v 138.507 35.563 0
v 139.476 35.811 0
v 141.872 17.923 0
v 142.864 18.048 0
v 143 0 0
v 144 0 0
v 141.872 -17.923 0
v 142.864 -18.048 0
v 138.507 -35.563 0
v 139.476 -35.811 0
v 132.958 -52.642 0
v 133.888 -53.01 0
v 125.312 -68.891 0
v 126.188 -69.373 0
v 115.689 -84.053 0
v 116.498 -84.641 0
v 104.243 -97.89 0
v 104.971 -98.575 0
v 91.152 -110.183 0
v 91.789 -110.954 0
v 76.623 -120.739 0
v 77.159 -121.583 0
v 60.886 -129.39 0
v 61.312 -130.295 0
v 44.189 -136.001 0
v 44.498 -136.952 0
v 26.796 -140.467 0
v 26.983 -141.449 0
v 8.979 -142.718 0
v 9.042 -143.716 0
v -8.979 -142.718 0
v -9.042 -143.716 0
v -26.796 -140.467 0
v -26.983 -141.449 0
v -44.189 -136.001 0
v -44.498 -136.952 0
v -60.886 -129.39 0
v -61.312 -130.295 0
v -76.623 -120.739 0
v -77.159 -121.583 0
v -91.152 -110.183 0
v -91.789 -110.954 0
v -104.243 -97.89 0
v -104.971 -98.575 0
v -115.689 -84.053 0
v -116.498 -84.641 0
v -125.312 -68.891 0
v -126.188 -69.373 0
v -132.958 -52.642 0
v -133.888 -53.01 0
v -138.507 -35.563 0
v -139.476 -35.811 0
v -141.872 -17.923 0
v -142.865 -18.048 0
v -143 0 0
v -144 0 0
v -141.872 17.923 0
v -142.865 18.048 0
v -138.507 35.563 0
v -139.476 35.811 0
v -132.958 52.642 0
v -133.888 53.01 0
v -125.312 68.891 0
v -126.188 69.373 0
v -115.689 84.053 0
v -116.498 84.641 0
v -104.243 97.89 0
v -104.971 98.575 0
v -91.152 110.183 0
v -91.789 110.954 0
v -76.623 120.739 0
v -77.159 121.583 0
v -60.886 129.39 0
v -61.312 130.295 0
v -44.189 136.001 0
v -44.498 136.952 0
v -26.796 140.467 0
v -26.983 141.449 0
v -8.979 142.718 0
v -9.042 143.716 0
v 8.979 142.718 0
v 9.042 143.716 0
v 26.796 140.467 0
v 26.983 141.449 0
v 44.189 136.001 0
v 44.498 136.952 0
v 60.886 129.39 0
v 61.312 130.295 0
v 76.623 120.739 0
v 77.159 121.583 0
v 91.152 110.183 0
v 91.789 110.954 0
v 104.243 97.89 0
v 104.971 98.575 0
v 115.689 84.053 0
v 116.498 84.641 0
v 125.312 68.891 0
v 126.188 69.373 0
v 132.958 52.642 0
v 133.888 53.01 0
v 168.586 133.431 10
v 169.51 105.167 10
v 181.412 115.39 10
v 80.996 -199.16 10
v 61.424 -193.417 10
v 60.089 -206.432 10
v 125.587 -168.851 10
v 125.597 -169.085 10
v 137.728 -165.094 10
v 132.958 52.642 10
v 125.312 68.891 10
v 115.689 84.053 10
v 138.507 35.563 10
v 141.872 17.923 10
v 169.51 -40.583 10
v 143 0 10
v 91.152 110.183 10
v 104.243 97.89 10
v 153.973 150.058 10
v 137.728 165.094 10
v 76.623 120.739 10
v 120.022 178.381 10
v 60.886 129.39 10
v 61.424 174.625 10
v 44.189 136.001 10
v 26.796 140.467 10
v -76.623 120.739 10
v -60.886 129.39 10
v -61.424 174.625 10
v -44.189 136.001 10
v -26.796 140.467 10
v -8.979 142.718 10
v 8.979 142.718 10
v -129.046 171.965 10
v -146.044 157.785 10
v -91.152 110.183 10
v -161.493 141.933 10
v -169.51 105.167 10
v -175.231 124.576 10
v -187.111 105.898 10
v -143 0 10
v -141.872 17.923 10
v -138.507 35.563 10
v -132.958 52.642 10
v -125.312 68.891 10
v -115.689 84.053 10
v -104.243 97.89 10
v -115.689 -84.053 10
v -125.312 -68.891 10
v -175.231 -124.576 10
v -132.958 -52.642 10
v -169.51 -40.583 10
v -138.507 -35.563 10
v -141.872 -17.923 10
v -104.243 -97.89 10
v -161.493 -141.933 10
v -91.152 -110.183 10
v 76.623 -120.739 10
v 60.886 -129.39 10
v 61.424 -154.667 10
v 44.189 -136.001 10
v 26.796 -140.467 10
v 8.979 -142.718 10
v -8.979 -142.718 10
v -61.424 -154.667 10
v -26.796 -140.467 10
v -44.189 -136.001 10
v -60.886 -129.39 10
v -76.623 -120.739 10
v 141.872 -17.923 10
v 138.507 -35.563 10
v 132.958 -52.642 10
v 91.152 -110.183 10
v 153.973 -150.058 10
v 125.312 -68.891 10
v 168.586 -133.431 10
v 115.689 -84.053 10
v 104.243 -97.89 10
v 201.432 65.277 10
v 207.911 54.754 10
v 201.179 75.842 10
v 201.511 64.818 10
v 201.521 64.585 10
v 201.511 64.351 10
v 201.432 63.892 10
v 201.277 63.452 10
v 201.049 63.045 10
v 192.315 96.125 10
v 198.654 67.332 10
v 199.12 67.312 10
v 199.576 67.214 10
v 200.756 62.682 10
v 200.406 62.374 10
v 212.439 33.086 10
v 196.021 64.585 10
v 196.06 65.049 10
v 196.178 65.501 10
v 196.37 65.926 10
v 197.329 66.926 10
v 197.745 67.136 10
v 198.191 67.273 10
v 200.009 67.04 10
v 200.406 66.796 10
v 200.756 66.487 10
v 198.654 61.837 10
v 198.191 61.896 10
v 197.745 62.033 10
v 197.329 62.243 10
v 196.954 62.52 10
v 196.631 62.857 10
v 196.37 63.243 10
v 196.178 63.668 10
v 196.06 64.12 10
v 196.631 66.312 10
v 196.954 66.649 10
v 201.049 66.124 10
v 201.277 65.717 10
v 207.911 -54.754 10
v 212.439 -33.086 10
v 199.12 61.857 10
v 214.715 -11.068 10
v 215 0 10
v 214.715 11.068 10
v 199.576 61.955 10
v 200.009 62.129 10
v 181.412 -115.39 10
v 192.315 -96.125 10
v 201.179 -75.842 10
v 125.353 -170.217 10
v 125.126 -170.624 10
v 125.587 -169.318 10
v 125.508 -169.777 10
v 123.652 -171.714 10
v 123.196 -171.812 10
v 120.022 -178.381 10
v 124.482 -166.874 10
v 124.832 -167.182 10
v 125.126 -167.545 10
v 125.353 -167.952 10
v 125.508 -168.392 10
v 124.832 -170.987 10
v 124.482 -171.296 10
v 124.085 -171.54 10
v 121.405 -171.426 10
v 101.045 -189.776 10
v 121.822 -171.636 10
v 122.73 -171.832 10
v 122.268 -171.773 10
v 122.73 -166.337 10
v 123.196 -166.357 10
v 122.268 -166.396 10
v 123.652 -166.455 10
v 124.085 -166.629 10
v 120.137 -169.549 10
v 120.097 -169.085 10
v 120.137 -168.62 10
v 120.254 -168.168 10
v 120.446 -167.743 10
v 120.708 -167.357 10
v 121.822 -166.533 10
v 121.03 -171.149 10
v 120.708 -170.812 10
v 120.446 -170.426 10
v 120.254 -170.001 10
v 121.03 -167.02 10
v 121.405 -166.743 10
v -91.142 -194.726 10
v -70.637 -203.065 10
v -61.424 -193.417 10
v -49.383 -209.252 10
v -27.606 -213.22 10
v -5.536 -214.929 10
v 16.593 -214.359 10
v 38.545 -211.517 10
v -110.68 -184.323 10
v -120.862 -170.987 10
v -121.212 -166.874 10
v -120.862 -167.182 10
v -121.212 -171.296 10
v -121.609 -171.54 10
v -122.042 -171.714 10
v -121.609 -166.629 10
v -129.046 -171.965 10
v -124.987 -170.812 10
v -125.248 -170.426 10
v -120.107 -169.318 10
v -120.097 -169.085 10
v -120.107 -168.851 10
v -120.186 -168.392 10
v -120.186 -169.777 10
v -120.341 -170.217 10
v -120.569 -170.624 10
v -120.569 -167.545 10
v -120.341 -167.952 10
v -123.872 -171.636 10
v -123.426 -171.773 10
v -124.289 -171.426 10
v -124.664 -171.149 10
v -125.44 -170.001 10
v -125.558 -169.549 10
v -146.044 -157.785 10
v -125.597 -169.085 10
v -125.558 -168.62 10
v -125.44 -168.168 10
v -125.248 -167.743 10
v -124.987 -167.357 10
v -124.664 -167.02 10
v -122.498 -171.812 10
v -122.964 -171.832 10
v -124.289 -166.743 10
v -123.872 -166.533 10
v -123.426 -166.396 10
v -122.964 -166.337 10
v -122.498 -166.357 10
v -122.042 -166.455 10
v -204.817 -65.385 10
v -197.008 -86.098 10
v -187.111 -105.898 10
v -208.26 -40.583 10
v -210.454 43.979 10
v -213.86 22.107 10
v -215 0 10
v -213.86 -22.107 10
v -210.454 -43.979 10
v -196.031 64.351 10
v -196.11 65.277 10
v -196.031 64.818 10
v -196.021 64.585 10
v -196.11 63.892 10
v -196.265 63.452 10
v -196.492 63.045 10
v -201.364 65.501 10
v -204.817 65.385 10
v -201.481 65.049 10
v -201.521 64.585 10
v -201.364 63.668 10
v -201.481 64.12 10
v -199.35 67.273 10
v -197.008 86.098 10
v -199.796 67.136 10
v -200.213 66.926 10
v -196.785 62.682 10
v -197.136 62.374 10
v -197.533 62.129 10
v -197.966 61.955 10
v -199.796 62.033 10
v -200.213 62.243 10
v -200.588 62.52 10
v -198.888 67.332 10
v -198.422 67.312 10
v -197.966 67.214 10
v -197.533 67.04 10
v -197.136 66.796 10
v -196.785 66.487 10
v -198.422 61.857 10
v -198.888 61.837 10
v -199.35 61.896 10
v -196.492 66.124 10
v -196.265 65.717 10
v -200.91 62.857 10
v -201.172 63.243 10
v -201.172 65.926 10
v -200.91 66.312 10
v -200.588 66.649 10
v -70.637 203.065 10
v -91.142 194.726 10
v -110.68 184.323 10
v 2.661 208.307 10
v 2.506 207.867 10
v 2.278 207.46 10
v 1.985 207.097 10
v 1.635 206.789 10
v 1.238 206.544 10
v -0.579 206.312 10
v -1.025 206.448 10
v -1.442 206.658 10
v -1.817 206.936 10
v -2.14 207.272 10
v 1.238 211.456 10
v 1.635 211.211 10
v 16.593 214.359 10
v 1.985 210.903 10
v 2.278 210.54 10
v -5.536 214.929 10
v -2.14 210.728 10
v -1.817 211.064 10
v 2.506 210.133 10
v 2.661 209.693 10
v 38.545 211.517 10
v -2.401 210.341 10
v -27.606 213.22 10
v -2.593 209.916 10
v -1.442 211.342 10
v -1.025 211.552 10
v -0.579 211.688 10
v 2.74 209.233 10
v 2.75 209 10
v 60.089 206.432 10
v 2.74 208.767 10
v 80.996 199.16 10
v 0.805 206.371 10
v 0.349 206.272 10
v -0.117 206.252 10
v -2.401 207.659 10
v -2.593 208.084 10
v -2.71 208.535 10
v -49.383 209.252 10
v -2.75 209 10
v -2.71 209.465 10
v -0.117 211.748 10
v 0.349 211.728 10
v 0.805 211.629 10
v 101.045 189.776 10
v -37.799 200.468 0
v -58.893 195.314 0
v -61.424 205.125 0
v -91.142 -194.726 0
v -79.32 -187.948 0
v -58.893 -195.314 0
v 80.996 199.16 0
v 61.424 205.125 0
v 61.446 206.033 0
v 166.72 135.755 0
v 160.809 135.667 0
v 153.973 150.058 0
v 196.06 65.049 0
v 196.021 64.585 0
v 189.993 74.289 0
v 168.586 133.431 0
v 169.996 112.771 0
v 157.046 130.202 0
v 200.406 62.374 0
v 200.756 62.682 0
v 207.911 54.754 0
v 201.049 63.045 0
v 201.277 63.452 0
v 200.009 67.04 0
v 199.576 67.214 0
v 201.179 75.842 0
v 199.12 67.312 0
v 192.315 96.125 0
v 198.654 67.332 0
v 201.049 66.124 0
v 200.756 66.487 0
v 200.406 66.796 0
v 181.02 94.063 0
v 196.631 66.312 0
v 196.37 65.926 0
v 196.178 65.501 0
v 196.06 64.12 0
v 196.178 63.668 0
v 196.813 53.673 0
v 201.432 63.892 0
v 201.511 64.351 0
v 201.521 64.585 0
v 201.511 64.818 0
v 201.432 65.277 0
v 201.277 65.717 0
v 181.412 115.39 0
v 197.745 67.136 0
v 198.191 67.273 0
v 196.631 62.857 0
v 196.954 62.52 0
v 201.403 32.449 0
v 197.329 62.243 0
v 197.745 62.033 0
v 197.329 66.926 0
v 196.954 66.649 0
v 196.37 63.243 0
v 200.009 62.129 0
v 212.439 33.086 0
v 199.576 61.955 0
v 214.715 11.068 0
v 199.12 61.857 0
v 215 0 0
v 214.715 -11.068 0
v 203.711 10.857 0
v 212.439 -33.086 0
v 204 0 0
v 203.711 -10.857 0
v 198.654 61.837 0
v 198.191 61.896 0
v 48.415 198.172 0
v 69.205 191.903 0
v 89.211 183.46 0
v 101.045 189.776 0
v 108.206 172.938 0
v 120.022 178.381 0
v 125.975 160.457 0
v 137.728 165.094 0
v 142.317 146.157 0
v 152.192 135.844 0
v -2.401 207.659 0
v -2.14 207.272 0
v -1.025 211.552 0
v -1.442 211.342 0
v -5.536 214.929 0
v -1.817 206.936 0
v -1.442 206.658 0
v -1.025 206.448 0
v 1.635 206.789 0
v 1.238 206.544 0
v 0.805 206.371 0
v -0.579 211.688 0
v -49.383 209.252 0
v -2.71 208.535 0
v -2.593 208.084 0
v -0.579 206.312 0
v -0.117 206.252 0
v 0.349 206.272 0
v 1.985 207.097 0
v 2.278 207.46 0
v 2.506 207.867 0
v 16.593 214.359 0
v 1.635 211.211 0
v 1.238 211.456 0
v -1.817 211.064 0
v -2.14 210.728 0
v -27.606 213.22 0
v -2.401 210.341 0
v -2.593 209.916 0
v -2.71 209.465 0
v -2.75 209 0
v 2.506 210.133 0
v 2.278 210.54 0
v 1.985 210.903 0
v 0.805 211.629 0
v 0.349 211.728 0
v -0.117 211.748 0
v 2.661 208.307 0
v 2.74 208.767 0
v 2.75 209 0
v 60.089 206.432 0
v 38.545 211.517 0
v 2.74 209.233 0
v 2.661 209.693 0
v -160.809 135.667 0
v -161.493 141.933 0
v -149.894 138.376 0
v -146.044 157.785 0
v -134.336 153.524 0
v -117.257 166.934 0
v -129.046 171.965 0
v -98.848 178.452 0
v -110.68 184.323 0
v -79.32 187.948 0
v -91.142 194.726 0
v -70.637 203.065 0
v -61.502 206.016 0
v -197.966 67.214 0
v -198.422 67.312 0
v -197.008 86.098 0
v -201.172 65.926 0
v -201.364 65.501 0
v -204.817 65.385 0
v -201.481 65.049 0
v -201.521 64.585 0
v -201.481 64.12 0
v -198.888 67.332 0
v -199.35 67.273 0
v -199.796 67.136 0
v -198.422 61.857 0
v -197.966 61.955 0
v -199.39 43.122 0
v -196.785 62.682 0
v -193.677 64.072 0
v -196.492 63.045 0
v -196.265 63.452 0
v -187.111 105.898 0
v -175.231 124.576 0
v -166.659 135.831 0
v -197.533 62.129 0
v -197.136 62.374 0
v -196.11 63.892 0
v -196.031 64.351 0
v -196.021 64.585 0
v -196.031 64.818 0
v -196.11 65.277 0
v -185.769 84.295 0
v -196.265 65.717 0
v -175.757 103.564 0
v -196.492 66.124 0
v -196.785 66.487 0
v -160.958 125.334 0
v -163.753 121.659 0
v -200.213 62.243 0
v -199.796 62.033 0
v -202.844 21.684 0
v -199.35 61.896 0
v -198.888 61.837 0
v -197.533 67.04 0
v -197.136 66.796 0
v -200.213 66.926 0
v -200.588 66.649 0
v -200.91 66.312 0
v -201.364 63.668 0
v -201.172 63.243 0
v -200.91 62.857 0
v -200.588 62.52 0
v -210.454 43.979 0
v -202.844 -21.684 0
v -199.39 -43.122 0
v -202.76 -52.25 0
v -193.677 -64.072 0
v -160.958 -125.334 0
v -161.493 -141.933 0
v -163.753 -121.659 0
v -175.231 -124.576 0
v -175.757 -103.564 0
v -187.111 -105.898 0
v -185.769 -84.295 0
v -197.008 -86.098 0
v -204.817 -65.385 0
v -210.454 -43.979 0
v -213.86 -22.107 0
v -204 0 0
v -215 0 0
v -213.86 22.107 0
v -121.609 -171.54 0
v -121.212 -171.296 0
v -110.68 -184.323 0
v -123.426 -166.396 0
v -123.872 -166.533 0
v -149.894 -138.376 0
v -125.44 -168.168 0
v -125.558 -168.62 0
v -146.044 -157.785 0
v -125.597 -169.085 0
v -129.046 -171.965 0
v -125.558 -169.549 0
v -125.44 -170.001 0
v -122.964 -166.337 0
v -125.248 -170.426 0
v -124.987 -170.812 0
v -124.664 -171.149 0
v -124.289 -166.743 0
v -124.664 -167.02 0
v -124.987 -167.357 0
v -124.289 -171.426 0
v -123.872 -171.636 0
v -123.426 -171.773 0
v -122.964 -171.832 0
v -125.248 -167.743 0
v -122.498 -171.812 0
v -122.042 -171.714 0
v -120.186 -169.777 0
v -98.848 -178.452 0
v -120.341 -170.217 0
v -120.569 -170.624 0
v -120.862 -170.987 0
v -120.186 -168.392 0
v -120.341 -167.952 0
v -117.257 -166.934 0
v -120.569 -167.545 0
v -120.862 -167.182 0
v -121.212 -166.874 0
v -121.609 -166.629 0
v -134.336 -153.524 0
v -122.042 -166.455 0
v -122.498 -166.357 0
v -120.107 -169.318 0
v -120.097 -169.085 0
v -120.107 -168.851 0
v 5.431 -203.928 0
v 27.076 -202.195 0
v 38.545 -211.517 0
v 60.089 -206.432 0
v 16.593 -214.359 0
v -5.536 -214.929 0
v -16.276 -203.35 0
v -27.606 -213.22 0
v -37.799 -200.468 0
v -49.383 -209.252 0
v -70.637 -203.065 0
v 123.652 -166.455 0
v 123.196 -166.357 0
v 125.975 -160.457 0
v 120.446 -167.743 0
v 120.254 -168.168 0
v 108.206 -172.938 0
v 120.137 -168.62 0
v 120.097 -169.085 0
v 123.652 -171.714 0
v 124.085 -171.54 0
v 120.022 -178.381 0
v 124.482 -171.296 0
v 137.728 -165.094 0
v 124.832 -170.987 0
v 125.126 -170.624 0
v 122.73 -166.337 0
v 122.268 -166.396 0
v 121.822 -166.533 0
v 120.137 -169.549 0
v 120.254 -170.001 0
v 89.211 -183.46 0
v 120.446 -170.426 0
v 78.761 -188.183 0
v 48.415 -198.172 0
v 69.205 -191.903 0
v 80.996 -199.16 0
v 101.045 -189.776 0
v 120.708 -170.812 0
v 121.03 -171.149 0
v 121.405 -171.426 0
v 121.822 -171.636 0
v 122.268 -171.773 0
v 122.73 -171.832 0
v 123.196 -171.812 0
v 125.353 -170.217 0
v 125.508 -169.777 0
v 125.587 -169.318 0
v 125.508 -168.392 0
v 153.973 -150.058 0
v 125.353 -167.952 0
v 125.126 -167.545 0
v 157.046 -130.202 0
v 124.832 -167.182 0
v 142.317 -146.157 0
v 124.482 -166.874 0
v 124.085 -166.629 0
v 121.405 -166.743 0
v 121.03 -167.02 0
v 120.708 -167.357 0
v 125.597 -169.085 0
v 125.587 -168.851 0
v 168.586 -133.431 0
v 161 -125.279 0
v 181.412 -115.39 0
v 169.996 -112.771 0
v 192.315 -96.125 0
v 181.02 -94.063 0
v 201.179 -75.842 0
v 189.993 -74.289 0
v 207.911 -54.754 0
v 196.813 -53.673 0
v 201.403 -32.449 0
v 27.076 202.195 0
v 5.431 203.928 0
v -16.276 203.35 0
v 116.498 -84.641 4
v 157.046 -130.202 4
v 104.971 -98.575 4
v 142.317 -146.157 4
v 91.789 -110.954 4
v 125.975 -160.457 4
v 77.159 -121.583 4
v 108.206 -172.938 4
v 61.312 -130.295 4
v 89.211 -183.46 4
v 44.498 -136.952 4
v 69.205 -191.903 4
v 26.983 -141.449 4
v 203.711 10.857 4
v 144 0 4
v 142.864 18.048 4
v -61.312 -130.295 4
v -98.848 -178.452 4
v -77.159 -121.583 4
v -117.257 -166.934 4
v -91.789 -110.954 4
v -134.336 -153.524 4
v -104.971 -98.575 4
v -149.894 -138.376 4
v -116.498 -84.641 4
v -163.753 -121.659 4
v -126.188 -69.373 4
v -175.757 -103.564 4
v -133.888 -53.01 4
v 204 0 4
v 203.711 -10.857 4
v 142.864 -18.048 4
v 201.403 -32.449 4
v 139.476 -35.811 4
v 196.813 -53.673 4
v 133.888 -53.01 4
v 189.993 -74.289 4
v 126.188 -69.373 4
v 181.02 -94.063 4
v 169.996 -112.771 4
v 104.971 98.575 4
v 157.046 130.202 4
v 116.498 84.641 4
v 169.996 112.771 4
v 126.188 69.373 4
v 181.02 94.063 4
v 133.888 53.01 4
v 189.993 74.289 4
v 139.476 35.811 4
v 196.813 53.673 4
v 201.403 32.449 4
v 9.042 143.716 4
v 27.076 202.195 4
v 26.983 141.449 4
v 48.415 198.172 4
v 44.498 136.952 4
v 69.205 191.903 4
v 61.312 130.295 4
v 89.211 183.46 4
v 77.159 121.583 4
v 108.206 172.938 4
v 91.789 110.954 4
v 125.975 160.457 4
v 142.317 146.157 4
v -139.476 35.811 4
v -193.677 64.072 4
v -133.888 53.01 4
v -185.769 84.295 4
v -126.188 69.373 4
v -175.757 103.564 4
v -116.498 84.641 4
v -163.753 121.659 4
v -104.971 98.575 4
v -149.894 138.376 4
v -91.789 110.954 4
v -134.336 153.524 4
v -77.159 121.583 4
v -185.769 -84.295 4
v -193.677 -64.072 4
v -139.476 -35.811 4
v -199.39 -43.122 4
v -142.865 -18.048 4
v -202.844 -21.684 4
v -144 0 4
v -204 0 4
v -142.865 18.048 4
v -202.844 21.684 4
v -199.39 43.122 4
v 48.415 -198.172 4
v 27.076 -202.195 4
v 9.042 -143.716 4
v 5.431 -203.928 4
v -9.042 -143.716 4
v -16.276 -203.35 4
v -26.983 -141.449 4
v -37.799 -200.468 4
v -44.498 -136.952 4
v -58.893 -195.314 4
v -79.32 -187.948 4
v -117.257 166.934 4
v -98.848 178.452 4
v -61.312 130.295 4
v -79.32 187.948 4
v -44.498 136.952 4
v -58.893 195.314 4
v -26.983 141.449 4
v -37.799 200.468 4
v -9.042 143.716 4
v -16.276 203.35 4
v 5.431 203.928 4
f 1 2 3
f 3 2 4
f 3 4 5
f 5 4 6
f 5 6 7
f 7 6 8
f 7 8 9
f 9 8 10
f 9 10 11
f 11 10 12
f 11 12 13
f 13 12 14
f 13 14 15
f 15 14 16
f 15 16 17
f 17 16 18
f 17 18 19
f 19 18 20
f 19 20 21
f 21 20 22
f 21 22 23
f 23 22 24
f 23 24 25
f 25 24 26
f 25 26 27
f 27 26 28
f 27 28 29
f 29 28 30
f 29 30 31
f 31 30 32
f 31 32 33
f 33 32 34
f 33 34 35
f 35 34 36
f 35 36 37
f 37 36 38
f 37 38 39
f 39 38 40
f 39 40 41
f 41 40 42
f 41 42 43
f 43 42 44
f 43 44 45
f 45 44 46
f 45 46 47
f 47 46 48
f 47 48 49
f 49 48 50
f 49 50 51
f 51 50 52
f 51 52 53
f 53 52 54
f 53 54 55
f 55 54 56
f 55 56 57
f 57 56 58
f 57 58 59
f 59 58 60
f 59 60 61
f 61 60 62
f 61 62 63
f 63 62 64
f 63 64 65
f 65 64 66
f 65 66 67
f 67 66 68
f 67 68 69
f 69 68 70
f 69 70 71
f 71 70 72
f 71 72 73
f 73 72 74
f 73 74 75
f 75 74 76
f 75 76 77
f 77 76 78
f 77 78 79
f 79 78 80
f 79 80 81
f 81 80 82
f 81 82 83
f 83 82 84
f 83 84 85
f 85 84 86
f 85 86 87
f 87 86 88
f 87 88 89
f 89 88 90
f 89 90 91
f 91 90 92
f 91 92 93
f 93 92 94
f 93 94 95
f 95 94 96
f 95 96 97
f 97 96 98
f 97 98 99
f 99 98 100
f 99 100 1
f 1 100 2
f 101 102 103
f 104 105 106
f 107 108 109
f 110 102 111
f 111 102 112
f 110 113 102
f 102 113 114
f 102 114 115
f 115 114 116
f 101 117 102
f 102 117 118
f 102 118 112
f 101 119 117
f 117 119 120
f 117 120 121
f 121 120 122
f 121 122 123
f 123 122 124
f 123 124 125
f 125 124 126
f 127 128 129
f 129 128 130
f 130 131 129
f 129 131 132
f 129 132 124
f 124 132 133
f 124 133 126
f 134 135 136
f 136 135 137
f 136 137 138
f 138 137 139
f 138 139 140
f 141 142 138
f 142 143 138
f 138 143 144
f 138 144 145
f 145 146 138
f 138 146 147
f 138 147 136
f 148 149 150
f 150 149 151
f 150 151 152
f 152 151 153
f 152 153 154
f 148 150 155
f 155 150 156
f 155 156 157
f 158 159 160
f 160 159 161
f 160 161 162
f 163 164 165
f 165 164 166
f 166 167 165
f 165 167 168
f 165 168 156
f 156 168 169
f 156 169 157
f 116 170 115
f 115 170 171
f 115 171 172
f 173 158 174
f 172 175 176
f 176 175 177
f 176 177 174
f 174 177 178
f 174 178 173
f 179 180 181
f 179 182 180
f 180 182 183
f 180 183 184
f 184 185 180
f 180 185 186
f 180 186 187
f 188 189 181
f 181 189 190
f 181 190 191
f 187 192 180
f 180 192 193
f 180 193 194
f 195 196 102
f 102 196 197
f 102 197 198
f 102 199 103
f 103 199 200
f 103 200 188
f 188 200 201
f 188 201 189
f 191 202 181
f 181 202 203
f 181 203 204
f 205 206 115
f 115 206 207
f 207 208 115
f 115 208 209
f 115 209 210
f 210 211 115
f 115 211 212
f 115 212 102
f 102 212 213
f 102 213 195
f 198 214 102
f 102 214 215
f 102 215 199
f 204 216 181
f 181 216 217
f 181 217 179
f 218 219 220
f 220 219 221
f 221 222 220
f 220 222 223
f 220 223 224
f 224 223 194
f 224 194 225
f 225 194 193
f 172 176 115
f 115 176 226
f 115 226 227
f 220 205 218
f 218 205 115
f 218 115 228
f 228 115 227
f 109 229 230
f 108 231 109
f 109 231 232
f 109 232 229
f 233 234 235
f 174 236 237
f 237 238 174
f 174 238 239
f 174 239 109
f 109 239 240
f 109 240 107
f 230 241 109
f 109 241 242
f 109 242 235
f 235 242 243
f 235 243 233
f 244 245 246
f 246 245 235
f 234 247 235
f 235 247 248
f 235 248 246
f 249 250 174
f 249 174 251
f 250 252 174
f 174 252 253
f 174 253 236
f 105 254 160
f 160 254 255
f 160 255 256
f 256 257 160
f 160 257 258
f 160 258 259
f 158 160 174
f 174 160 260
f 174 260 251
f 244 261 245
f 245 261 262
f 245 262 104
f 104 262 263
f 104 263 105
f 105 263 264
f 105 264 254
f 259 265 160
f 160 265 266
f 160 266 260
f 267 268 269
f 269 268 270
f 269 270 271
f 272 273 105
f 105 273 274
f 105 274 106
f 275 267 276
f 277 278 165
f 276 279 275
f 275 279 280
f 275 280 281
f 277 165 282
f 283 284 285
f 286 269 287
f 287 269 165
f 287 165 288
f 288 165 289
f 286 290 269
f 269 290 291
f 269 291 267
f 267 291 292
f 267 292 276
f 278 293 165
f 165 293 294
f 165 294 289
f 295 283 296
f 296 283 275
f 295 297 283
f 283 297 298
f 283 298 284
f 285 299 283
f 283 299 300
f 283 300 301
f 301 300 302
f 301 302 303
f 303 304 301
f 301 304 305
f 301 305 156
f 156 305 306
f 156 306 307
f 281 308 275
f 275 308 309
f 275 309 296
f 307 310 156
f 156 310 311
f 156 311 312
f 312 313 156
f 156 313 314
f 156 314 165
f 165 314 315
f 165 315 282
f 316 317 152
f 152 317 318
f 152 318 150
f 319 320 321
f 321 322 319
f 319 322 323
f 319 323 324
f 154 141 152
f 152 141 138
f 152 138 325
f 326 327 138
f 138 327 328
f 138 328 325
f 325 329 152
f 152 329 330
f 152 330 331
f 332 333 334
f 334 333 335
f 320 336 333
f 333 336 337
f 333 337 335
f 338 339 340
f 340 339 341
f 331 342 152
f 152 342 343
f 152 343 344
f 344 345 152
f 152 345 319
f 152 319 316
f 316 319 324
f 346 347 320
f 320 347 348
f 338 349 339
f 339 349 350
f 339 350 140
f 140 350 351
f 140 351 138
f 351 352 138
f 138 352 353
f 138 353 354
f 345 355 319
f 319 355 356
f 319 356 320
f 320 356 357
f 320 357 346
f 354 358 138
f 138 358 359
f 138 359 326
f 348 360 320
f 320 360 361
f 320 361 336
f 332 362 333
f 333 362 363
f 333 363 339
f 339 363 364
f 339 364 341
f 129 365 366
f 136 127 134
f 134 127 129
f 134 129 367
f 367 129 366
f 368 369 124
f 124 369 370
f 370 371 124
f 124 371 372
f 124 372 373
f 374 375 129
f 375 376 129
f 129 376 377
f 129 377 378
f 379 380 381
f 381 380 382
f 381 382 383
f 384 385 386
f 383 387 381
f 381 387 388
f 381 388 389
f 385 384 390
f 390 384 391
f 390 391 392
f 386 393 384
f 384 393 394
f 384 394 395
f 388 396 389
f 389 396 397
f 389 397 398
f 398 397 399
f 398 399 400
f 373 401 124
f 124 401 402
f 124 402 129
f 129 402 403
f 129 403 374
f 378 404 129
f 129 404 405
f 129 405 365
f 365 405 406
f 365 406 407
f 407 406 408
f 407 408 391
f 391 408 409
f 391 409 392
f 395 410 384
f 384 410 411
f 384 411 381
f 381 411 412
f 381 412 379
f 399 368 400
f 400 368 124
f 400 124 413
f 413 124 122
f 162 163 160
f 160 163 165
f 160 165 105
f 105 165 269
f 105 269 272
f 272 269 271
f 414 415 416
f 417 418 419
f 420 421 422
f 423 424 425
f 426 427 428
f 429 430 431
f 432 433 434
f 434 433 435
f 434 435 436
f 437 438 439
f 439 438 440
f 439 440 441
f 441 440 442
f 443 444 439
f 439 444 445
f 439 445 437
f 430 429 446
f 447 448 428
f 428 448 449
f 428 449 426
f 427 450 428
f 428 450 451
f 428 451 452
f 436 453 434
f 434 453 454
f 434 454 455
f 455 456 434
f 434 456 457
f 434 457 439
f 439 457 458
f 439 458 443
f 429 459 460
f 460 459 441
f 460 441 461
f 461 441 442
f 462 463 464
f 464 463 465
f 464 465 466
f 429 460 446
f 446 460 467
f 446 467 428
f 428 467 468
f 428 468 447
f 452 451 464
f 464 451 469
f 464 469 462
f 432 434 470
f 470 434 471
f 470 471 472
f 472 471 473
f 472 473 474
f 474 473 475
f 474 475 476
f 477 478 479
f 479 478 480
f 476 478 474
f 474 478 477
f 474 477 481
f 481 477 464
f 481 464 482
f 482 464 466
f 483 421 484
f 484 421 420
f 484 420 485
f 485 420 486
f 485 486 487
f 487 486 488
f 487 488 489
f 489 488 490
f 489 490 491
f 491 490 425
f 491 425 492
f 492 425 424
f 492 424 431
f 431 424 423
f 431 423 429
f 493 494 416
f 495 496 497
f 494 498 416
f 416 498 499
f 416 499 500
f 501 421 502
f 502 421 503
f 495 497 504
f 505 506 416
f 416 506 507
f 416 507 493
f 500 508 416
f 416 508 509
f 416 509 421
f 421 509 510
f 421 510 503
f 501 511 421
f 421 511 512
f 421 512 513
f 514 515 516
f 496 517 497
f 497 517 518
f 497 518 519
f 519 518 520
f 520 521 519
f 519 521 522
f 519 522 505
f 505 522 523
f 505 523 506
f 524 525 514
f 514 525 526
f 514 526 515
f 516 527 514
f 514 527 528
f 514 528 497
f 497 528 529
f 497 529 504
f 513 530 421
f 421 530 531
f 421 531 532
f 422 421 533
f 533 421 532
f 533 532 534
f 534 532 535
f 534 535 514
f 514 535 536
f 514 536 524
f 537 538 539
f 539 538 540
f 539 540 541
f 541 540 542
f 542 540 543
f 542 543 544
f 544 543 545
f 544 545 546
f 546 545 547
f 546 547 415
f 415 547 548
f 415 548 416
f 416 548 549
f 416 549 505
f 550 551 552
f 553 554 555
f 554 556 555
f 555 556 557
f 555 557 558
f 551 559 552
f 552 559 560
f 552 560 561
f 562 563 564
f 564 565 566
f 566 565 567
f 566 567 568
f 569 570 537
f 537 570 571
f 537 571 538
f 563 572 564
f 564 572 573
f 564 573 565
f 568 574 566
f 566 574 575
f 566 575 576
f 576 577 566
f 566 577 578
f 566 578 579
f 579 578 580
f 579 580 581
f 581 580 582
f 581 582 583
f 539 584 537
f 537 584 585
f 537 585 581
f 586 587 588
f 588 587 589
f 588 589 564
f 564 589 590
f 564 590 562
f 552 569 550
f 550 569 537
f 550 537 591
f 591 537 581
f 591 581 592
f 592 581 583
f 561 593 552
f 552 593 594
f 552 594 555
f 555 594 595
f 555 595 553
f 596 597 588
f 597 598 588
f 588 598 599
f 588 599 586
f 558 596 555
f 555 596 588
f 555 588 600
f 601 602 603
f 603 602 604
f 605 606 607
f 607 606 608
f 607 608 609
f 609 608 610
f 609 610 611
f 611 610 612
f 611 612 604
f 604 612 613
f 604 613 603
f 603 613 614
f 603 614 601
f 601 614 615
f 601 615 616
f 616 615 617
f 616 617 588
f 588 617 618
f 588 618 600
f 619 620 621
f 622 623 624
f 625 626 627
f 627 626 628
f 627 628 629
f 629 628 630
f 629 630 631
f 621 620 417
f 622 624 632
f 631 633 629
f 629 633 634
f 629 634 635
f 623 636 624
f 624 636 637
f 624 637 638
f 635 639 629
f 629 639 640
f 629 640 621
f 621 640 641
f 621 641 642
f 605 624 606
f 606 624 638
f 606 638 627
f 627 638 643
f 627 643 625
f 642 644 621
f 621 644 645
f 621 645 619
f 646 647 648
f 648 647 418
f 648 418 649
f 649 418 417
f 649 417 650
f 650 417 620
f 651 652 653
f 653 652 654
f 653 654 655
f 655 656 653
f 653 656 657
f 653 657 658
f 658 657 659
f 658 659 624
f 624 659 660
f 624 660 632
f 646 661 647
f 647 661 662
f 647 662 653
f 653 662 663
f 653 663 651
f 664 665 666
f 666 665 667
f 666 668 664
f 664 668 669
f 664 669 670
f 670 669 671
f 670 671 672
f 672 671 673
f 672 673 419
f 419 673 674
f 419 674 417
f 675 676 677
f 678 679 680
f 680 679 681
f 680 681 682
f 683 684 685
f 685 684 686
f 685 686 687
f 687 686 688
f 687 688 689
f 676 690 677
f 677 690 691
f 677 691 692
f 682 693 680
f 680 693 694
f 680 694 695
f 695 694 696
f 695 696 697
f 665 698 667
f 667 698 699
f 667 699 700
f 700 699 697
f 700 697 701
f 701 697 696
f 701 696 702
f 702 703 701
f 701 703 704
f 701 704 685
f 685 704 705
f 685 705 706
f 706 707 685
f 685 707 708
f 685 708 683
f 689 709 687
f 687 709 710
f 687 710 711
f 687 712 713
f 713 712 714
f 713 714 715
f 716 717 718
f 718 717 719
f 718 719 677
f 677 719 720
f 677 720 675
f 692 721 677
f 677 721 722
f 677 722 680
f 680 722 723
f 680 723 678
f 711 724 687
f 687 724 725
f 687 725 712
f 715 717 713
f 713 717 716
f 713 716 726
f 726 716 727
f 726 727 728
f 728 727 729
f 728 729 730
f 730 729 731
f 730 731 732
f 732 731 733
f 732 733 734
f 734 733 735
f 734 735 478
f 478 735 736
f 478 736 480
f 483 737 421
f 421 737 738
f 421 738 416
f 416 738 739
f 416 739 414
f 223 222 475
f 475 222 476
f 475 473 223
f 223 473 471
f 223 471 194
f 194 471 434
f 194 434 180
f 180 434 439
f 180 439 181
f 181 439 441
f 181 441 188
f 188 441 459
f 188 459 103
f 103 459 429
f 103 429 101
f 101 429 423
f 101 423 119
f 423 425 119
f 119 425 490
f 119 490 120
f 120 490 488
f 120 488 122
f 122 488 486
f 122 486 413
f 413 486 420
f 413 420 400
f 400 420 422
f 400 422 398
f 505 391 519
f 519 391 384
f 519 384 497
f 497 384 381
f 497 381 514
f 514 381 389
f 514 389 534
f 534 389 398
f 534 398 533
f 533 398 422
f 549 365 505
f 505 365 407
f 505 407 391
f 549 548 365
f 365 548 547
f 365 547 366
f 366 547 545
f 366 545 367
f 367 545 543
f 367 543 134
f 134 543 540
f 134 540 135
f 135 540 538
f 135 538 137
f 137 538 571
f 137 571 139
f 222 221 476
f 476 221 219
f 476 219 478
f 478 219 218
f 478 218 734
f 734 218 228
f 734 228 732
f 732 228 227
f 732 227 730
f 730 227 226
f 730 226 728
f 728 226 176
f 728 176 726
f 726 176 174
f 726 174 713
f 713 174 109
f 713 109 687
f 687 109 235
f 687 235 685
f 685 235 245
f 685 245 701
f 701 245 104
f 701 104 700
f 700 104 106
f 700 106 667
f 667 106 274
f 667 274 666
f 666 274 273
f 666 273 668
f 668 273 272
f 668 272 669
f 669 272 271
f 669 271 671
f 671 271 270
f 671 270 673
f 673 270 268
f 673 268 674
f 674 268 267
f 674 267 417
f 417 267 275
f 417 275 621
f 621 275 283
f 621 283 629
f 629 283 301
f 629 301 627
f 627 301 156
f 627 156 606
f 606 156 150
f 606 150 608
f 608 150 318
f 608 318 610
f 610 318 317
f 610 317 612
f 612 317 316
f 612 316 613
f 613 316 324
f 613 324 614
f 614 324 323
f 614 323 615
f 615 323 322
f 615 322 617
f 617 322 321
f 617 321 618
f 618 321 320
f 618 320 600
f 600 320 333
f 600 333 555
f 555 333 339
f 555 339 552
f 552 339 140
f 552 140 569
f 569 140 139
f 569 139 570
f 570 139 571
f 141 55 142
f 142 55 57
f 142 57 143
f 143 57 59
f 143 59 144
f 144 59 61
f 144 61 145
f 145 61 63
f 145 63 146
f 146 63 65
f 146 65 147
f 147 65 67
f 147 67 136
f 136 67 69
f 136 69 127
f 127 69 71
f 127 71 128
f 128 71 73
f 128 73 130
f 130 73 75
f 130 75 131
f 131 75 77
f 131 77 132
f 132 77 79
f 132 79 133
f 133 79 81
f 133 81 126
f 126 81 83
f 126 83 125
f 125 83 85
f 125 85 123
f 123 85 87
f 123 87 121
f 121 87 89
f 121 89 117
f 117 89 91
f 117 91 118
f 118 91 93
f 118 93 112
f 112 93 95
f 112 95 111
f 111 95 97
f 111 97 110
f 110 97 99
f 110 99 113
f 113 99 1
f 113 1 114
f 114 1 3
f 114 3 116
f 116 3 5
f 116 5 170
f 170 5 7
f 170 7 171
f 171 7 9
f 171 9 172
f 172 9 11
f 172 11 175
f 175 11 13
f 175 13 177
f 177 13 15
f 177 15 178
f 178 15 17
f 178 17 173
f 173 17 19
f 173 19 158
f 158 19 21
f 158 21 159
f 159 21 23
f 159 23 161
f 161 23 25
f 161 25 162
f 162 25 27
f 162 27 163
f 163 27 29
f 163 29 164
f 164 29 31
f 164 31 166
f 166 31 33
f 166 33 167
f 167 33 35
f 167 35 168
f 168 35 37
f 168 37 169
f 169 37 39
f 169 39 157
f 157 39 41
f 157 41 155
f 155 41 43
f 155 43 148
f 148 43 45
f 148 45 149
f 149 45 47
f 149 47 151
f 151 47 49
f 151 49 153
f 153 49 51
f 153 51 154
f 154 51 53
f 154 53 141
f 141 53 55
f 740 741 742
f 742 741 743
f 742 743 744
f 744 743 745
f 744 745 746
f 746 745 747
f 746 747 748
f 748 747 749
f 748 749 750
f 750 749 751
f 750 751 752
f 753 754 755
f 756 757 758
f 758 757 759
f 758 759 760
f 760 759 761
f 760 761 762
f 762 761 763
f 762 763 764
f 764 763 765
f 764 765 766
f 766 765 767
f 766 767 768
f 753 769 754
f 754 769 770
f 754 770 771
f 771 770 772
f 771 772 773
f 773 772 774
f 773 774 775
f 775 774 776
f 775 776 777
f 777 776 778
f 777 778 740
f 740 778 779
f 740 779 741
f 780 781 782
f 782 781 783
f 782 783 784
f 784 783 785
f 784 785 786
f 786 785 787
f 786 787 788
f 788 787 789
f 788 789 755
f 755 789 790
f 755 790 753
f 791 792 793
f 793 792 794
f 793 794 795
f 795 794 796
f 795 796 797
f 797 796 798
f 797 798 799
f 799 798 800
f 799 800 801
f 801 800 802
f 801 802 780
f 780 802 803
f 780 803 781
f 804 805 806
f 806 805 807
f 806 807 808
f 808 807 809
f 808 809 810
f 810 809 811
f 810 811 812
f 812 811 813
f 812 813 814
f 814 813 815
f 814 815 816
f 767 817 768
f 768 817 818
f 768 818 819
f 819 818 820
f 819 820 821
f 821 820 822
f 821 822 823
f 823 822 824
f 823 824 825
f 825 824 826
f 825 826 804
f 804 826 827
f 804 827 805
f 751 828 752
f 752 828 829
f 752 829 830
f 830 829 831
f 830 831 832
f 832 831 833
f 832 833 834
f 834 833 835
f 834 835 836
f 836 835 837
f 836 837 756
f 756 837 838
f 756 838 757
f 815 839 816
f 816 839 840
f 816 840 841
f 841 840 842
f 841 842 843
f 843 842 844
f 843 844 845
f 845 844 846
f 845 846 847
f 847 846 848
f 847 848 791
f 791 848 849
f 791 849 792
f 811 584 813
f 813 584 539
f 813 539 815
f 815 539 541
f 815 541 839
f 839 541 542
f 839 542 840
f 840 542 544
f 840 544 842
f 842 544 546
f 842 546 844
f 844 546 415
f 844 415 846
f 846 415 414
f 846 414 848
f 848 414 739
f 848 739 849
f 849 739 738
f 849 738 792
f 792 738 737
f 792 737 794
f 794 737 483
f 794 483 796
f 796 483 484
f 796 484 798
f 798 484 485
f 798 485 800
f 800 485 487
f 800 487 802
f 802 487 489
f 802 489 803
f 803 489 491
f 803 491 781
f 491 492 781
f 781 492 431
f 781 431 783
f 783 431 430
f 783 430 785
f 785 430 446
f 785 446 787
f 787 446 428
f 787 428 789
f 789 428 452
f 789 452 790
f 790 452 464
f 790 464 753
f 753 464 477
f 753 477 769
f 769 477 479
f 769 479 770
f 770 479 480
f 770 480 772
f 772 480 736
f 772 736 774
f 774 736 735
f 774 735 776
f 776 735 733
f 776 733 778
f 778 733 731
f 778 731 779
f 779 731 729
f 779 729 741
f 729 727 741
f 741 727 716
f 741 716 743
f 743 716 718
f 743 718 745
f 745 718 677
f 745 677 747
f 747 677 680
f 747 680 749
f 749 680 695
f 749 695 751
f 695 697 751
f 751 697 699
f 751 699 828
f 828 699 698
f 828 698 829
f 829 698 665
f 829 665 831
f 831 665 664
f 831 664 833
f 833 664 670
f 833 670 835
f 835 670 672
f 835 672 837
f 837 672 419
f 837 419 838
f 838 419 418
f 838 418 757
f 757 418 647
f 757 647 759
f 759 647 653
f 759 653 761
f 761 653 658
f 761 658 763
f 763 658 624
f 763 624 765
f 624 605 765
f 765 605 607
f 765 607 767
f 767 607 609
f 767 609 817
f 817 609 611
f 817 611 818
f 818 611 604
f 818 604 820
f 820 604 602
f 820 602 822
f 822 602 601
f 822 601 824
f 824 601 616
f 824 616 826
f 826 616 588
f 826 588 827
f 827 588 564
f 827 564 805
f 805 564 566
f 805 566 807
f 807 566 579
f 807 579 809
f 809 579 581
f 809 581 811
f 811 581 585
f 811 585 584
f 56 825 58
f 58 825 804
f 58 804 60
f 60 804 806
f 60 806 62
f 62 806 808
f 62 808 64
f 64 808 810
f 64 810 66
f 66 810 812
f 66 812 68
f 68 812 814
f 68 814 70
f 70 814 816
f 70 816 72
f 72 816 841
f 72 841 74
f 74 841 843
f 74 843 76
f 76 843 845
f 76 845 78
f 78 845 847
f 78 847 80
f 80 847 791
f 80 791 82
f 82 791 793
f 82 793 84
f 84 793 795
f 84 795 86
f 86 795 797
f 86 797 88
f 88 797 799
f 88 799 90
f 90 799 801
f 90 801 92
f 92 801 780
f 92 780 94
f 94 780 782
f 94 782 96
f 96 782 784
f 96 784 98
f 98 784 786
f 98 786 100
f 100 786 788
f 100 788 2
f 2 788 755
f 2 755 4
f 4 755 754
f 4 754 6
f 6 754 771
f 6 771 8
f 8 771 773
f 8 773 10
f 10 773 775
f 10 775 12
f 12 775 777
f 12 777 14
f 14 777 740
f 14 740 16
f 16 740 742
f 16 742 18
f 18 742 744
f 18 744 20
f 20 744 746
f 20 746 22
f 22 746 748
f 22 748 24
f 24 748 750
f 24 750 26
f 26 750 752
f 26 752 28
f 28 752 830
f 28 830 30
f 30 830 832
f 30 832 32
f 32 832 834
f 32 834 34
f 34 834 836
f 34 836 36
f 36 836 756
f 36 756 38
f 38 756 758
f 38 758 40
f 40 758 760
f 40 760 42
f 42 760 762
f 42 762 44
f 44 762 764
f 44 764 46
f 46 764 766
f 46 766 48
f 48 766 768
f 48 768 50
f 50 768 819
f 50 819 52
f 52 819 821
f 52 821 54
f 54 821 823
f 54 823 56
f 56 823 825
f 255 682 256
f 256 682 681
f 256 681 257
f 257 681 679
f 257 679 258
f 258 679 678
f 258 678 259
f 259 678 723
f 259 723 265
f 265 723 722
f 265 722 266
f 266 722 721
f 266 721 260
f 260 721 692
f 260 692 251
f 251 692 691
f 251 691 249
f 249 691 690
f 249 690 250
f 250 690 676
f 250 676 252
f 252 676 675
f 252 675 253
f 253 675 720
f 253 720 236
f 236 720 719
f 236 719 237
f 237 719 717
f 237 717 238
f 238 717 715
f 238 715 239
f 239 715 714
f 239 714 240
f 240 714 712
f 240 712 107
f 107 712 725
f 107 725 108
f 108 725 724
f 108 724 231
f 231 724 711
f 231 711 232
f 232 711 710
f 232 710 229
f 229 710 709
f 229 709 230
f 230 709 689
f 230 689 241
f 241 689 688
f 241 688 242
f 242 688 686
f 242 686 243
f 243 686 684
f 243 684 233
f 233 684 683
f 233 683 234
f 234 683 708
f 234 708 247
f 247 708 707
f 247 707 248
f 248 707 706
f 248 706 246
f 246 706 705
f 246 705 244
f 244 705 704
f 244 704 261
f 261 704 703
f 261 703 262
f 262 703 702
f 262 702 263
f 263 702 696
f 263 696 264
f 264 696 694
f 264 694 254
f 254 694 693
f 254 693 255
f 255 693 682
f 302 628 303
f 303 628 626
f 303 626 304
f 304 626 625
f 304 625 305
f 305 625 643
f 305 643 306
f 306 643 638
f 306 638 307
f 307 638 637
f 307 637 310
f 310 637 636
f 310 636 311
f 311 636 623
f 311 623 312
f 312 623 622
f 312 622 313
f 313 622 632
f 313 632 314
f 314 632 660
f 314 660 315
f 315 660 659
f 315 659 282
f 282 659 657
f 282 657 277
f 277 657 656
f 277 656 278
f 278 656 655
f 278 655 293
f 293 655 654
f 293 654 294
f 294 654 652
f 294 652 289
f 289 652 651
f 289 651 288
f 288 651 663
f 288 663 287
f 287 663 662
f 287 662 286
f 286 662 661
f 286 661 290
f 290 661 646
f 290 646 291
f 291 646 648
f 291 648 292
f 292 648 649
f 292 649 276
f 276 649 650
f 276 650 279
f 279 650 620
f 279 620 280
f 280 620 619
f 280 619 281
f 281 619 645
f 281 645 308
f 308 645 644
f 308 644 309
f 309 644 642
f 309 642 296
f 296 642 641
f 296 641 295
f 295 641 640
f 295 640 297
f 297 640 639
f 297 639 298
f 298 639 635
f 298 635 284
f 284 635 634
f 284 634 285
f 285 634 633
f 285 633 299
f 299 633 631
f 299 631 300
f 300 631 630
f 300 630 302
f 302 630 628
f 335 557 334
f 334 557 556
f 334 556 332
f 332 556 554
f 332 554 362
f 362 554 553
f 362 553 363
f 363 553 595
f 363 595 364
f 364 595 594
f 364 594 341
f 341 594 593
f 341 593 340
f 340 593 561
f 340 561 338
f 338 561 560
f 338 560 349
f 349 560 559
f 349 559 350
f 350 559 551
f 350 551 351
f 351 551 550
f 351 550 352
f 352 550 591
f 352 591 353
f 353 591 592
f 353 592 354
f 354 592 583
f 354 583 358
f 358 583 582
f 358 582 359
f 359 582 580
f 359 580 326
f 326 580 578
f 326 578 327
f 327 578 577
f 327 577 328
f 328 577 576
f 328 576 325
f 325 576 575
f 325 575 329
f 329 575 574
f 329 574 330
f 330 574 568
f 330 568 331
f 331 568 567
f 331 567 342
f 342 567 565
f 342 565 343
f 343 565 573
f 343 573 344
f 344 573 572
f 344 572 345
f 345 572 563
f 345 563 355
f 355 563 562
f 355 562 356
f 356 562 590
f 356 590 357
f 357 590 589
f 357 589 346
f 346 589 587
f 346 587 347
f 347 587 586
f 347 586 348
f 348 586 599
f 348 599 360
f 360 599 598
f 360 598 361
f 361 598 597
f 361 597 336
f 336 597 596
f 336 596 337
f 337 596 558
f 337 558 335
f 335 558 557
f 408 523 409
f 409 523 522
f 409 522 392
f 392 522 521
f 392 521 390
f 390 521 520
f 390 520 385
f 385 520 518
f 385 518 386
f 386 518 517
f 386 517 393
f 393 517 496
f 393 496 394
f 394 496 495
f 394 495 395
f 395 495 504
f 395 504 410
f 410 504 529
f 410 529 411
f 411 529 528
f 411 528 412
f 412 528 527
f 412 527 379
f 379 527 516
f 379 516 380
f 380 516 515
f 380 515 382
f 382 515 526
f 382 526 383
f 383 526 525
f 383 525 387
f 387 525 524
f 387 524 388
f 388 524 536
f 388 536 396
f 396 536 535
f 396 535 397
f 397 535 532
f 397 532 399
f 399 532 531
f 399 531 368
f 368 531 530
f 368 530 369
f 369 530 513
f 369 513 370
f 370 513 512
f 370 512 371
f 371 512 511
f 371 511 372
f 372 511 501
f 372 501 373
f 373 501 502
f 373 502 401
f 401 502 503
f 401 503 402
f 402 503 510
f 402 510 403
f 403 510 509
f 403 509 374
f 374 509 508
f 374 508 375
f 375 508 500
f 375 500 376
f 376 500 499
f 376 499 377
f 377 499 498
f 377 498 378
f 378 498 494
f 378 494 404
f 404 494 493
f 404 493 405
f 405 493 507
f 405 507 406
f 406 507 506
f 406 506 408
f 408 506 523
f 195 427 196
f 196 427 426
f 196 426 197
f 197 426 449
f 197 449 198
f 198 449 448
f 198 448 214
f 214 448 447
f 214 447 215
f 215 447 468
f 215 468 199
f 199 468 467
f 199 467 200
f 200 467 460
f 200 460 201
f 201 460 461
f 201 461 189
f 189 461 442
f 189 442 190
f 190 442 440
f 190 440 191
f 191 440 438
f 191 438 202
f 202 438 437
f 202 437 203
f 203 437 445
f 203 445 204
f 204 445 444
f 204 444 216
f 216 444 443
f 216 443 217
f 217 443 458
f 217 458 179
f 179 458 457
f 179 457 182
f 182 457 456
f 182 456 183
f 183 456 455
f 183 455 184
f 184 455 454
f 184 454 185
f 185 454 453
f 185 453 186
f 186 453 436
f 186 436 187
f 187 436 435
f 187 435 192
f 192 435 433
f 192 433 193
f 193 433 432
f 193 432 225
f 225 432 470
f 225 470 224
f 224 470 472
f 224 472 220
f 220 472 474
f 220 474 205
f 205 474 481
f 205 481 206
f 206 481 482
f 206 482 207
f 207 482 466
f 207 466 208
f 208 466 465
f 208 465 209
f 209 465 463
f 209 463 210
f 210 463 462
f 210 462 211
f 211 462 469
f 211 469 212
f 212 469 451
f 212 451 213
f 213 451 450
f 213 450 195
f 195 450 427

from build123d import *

# Parameters (mm, degrees)
SKETCH1_R         = 215
SKETCH1_R_2       = 143
PLATE_DEPTH       = 10
SKETCH2_R         = 204
SKETCH2_R_2       = 144
COMB_GROOVE_DEPTH = 4
SKETCH3_R         = 2.75
ROD_HOLES_DEPTH   = 10


with BuildPart() as part:
    # Sketch1 → Plate (new body)
    with BuildSketch(Plane.XY):
        Circle(SKETCH1_R)
        Circle(SKETCH1_R_2, mode=Mode.SUBTRACT)
    extrude(amount=PLATE_DEPTH)

    # Sketch2 → Comb_groove (cut)
    with BuildSketch(Plane.XY):
        Circle(SKETCH2_R)
        Circle(SKETCH2_R_2, mode=Mode.SUBTRACT)
    extrude(amount=COMB_GROOVE_DEPTH, mode=Mode.SUBTRACT)

    # Sketch3 → Rod_holes (cut)
    with BuildSketch(Plane.XY):
        with Locations((198.770811906, 64.584551824)):
            Circle(SKETCH3_R)
        with Locations((0, 209)):
            Circle(SKETCH3_R)
        with Locations((-198.770811906, 64.584551824)):
            Circle(SKETCH3_R)
        with Locations((-122.847117729, -169.084551824)):
            Circle(SKETCH3_R)
        with Locations((122.847117729, -169.084551824)):
            Circle(SKETCH3_R)
    extrude(amount=ROD_HOLES_DEPTH, mode=Mode.SUBTRACT)


solid = part.part
